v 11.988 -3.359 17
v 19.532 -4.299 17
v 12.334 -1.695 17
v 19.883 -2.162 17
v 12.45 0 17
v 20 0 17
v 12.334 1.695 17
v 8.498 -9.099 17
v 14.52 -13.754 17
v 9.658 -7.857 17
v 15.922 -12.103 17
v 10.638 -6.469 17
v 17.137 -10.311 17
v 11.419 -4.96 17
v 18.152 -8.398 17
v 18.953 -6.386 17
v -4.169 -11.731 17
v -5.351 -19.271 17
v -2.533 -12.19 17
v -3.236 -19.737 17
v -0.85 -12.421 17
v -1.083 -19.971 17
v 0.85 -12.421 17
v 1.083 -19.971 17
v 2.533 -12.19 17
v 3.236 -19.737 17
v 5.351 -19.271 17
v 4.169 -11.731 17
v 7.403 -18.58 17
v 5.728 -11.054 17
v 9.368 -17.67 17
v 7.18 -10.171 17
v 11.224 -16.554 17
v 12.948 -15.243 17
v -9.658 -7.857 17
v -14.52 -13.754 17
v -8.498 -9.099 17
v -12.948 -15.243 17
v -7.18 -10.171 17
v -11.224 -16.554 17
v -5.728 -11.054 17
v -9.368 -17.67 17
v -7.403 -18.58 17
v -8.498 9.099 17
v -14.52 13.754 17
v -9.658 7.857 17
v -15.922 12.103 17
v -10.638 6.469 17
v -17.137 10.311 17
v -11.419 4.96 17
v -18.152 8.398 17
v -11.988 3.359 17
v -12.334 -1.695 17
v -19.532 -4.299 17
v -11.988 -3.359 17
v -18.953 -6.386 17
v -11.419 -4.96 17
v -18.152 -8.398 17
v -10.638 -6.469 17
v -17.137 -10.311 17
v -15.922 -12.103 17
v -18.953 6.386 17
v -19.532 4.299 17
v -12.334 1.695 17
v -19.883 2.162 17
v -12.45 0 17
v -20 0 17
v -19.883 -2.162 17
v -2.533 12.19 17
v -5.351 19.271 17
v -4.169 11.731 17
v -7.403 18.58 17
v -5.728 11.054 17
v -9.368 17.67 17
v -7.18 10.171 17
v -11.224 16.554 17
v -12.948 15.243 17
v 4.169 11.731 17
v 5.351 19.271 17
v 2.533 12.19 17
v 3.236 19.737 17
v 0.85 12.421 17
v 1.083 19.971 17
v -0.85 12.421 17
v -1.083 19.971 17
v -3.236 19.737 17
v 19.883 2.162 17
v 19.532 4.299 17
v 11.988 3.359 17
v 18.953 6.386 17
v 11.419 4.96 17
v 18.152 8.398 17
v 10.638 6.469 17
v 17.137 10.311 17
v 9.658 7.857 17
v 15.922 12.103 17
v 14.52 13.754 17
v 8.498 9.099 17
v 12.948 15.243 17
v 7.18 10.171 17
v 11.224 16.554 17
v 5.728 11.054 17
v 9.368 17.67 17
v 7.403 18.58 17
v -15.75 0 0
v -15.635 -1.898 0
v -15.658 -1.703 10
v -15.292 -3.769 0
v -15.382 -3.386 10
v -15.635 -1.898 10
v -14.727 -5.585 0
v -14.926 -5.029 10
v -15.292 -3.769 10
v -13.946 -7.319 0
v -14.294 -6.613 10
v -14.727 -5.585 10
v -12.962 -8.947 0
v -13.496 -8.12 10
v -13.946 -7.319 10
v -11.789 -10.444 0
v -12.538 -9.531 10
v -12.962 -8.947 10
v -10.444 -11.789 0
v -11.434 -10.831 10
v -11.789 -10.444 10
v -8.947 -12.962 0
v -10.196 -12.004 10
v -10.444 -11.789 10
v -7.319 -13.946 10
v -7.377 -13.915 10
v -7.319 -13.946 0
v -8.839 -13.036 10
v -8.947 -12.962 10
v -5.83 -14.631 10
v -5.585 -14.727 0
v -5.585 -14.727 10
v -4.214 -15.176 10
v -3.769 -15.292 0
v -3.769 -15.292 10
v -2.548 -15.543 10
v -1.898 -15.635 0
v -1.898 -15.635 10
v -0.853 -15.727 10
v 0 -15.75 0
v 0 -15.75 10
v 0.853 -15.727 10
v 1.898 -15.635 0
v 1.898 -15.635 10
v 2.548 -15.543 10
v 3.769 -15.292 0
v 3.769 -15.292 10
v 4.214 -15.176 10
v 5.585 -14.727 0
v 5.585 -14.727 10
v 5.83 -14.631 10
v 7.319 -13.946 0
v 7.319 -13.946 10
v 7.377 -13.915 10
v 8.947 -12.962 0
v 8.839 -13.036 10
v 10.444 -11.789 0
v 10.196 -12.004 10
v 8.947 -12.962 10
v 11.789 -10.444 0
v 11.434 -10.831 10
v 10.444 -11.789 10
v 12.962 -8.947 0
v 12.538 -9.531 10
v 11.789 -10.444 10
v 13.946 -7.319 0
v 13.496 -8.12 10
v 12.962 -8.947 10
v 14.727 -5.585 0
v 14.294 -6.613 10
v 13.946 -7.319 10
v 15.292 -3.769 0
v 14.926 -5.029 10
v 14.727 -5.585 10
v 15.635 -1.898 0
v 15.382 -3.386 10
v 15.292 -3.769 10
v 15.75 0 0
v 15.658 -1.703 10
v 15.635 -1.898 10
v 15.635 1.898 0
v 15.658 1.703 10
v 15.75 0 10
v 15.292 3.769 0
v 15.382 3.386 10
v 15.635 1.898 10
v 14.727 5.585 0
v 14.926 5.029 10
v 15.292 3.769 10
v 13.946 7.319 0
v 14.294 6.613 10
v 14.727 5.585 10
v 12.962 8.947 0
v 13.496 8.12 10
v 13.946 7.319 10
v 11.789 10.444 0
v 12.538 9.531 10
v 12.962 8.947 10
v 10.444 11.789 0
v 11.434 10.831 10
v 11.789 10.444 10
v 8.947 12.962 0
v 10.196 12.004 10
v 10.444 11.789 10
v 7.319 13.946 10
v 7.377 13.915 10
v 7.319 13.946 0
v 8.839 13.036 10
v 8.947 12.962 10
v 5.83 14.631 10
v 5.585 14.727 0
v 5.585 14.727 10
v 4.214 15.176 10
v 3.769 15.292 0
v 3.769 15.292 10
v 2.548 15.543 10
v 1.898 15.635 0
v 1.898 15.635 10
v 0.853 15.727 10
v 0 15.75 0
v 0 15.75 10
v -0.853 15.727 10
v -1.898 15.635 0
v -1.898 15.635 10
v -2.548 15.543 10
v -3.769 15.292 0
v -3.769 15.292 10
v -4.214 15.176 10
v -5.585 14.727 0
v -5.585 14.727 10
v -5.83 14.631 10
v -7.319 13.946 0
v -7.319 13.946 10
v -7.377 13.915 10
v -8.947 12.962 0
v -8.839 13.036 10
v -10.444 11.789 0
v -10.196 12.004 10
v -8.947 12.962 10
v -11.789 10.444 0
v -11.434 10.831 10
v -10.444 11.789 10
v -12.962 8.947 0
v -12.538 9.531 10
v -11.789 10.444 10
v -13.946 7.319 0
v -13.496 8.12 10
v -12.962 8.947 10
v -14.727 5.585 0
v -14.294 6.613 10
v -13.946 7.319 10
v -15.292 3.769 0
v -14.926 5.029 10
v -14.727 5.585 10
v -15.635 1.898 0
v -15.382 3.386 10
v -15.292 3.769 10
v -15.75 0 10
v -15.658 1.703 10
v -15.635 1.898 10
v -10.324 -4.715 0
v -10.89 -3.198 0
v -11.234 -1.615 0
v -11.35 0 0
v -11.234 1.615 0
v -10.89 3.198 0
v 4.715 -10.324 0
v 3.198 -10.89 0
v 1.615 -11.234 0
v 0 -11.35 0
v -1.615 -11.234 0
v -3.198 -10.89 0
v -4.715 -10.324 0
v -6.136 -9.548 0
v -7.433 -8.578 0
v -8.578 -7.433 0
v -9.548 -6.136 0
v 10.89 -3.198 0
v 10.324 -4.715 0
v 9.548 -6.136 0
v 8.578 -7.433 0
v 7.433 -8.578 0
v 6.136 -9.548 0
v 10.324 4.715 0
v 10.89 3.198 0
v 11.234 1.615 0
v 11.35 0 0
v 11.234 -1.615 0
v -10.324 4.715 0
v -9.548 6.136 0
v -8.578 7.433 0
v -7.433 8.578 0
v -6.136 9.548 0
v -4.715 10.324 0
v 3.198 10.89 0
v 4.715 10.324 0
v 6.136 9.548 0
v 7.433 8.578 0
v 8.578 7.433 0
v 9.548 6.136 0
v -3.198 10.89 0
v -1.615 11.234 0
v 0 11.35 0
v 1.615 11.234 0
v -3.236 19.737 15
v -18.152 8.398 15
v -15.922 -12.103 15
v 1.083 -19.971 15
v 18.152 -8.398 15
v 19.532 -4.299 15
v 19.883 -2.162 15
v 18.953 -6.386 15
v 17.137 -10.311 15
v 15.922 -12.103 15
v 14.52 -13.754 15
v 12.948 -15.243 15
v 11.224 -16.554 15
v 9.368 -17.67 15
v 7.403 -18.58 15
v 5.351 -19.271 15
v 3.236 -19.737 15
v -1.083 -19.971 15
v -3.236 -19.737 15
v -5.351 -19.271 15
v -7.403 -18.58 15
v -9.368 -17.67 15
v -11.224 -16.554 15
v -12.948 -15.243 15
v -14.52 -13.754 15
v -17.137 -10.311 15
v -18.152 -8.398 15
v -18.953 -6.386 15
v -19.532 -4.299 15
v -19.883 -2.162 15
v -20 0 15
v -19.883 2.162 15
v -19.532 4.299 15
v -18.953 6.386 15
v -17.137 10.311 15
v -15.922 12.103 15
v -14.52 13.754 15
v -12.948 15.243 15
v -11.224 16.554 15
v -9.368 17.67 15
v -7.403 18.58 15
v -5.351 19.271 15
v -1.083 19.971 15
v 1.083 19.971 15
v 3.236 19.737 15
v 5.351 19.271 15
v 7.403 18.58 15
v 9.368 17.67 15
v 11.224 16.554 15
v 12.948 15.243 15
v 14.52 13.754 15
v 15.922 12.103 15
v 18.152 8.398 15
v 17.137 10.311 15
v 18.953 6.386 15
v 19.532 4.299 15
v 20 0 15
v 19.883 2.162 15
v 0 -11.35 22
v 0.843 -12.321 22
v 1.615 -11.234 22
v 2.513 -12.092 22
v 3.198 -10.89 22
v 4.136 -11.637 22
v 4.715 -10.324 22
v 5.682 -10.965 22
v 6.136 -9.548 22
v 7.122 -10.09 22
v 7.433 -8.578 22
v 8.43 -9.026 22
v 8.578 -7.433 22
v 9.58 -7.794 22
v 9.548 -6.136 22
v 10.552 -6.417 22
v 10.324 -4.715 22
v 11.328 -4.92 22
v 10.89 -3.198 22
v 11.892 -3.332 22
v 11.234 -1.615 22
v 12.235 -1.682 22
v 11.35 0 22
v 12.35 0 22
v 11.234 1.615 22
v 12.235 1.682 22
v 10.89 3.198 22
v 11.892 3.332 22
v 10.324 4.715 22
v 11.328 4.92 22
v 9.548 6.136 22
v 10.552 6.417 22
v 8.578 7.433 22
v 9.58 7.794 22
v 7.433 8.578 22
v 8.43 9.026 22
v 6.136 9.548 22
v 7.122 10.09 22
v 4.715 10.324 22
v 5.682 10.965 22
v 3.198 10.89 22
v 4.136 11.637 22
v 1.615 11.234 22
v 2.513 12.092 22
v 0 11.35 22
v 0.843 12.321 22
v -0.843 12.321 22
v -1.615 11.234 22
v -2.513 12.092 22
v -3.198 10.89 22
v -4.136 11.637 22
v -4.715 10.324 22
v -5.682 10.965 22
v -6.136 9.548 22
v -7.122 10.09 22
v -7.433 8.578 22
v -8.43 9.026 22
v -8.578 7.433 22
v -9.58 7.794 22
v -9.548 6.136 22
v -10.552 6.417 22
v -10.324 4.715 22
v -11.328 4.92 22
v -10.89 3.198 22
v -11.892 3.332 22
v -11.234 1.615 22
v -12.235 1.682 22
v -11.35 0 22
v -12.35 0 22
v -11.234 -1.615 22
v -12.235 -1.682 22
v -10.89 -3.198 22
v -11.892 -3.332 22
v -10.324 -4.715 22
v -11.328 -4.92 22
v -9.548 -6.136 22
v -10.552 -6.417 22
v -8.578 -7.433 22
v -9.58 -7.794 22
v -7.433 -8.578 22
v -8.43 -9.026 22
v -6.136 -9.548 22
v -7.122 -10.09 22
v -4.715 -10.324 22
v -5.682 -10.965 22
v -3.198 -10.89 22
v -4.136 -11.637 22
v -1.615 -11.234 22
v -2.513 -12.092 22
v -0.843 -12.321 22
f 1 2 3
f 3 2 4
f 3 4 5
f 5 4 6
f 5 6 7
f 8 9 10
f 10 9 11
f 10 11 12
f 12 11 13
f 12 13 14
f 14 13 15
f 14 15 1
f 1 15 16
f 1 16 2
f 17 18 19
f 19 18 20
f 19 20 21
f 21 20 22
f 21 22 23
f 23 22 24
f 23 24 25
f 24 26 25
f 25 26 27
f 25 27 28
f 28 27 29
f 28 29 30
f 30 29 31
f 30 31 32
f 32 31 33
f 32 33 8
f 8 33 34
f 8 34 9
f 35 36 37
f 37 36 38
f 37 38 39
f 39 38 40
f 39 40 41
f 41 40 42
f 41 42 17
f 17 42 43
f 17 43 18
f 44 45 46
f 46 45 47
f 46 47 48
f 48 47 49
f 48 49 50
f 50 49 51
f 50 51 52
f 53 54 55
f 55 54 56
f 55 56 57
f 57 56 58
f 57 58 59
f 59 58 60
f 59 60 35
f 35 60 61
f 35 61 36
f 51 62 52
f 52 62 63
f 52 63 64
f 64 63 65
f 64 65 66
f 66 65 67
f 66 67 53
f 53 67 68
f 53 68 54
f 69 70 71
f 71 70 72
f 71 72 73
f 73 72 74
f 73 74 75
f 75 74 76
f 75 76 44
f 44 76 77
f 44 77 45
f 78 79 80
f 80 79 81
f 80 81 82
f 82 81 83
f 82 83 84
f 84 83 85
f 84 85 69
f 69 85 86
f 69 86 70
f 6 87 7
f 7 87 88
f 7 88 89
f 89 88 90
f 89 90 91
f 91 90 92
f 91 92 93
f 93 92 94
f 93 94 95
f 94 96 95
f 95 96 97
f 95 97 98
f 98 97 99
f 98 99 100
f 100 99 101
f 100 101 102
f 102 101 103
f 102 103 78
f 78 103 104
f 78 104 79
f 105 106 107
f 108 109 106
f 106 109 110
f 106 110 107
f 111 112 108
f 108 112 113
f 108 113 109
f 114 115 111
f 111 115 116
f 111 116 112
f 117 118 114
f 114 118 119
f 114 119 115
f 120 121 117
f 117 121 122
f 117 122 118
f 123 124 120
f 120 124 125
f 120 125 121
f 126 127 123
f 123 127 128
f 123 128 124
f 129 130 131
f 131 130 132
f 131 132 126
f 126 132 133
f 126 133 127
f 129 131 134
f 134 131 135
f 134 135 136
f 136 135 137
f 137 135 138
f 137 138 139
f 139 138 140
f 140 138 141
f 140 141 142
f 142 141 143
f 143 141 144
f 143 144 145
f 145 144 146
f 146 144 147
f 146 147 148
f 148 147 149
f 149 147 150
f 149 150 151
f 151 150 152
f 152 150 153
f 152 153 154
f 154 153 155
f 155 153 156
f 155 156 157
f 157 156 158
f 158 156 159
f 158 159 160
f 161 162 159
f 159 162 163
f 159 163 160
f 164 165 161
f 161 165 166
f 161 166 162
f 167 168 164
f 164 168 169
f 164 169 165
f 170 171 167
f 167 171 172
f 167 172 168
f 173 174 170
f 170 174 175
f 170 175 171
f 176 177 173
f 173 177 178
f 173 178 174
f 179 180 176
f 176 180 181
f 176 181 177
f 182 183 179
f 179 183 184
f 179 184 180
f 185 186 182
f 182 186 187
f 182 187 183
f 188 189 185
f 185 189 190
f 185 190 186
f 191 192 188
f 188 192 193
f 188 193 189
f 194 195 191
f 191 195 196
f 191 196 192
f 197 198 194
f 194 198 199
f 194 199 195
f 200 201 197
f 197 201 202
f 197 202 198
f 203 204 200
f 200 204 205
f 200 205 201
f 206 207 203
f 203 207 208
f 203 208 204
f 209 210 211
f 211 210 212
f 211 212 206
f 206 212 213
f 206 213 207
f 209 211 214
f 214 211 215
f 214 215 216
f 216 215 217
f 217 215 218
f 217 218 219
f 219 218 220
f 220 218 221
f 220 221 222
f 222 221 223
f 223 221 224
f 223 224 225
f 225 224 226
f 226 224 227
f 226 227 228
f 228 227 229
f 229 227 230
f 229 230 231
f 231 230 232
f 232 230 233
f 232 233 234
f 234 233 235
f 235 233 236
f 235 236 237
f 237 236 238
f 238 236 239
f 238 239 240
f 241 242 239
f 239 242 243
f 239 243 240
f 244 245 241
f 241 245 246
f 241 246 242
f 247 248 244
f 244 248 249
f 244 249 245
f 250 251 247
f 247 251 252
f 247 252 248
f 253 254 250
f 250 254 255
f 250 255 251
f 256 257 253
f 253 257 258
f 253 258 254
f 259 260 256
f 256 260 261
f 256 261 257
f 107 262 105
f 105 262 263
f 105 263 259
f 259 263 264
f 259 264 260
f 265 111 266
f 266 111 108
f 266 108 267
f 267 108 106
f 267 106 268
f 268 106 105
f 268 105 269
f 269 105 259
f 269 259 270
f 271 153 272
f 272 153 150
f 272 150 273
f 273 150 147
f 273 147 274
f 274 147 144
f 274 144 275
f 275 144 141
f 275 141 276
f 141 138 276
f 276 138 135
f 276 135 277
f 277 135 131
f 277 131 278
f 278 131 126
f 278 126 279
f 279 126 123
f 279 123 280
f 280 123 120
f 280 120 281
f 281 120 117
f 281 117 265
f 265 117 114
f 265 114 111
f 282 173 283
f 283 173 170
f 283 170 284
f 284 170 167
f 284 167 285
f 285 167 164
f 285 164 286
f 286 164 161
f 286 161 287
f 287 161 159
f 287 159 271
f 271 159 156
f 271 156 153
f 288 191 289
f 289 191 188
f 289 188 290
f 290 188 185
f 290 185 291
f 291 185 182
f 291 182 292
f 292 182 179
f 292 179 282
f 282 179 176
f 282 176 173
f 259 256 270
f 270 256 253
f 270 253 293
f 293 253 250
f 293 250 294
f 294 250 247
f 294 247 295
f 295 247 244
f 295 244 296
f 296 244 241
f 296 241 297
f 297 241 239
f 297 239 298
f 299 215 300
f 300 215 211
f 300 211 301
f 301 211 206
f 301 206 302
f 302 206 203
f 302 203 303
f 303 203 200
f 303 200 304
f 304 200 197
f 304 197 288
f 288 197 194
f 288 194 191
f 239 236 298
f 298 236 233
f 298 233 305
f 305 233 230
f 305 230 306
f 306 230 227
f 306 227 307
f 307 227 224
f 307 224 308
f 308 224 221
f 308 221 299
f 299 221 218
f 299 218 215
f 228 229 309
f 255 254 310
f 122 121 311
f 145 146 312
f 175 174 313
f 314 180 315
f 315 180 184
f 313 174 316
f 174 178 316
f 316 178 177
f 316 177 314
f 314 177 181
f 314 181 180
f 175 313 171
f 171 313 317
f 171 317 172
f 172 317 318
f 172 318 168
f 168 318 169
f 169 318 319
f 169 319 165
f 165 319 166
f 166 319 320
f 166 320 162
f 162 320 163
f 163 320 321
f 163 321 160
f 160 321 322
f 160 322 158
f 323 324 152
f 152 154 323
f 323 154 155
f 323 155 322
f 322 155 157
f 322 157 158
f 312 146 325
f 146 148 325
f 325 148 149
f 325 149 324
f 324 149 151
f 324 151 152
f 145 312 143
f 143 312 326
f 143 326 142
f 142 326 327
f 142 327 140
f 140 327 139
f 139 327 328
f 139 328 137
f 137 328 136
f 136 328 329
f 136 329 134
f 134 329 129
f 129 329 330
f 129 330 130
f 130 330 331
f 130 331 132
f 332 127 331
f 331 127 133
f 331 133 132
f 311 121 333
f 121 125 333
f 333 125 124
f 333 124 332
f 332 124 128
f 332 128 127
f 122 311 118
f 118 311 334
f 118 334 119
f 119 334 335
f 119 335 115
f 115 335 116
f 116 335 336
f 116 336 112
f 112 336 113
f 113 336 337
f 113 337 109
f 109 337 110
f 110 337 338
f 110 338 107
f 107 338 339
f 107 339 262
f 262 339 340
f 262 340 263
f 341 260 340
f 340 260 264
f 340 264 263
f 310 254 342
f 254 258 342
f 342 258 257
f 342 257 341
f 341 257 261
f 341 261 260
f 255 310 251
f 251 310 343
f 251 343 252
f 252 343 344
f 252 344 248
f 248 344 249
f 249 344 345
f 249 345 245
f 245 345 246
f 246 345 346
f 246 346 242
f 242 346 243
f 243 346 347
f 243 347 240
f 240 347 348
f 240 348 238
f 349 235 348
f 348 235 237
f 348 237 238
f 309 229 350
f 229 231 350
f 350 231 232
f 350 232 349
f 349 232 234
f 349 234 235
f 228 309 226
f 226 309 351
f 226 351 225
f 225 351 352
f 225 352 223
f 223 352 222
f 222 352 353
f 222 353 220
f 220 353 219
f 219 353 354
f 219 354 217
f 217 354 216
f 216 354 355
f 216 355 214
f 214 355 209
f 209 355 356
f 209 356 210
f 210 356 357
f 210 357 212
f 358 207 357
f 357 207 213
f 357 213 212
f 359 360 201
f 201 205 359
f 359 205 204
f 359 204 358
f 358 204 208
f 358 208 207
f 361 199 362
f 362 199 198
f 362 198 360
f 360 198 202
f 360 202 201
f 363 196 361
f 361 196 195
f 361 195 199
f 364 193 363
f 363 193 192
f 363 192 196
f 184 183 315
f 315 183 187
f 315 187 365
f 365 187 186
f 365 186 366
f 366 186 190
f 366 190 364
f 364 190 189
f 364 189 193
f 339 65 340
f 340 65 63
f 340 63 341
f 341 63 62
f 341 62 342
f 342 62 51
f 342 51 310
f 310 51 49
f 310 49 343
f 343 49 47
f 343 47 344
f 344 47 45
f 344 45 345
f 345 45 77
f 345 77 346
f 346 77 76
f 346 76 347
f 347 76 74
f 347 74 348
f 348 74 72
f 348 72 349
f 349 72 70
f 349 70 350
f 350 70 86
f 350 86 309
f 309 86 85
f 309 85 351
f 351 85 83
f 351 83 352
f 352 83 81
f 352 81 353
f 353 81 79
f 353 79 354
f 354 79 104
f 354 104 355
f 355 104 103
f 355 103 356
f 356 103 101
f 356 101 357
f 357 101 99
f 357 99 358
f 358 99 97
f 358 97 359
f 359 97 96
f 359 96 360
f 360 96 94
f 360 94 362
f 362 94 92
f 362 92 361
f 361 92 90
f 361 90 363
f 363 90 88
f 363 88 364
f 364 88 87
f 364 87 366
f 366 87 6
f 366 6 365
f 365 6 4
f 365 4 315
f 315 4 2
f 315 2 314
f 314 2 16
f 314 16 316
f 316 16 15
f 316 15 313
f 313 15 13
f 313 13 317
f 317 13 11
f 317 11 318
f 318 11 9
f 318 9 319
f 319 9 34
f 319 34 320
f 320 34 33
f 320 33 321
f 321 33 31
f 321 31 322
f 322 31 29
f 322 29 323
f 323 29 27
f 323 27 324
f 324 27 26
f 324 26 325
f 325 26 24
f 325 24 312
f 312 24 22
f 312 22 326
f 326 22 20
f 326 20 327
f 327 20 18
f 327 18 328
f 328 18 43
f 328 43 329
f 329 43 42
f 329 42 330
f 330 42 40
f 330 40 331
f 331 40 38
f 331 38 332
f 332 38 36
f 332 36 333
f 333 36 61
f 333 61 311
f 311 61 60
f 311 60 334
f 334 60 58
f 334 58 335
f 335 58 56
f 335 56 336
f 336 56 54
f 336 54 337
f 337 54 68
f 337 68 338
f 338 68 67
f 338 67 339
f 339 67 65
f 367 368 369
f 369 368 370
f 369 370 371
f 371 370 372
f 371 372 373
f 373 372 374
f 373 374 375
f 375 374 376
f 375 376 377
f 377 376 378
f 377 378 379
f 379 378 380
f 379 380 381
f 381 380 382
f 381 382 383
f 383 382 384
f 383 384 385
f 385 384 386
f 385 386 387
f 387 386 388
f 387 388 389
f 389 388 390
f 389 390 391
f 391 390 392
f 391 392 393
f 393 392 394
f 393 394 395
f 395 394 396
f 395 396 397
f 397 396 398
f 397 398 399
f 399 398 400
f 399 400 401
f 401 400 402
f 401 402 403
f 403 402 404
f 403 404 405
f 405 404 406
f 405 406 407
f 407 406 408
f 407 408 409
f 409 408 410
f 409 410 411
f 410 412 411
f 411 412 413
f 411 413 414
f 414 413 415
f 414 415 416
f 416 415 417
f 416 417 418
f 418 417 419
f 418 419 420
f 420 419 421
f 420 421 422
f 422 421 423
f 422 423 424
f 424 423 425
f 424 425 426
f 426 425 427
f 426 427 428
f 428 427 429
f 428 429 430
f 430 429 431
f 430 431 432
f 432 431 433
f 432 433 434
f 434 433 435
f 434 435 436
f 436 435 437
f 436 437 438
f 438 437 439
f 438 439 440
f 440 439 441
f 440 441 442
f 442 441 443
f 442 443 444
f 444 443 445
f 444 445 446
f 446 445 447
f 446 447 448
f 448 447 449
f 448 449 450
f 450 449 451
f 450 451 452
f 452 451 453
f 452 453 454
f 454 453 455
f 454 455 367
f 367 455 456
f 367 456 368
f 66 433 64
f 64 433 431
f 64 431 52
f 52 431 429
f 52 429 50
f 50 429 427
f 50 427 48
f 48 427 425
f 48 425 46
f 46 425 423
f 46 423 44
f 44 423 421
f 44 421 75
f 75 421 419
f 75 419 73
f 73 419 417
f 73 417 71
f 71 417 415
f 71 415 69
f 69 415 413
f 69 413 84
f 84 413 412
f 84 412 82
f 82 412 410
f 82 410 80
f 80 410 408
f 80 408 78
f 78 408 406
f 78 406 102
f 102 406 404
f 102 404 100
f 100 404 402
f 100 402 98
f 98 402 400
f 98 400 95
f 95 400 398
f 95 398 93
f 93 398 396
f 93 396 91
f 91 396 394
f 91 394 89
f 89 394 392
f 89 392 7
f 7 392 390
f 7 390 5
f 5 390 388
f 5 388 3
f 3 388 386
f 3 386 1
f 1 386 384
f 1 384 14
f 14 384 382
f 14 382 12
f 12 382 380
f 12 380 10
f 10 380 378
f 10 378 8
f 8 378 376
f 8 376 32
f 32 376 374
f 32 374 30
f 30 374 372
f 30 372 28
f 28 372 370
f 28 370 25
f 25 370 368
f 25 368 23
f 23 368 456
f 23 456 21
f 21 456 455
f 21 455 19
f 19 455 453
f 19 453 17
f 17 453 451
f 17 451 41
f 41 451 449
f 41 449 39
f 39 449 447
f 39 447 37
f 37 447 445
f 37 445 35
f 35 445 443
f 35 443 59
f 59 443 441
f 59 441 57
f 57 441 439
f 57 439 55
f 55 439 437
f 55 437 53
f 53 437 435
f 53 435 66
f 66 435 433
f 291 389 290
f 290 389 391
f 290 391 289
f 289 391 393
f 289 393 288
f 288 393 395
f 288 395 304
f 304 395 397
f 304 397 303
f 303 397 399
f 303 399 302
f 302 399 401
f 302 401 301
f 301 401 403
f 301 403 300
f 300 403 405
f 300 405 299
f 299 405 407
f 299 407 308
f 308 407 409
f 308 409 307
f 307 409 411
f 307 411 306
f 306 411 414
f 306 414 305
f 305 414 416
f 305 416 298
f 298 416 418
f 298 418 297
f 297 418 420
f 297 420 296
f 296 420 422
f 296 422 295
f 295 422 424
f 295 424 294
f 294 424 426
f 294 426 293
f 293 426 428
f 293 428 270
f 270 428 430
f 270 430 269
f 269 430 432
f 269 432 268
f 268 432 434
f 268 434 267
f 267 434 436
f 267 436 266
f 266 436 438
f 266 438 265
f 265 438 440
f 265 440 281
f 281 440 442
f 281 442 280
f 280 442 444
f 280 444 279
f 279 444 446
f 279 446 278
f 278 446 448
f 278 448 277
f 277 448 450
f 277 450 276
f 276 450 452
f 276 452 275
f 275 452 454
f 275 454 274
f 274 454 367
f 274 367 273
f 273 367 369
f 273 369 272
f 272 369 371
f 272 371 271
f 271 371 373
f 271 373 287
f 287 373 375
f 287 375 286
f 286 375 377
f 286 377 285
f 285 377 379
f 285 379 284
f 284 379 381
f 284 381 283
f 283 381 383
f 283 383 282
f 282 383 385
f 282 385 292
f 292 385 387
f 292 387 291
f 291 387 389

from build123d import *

# Parameters (mm, degrees)
SKETCH_10_R         = 15.75
EXTRUDE_5_DEPTH     = 10
SKETCH_12_R         = 20
SKETCH_14_R         = 20
EXTRUDE_6_DEPTH     = 2
SKETCH_16_R         = 12.35
SKETCH_15_R         = 12.45
SKETCH_17_R         = 11.35
CUT_EXTRUDE_3_DEPTH = 30


with BuildPart() as part:
    # 草图10 → 凸台-拉伸5 (new body)
    with BuildSketch(Plane.XY):
        Circle(SKETCH_10_R)
    extrude(amount=EXTRUDE_5_DEPTH)

    # 草图12 → section 0 of loft_5
    with BuildSketch(Plane.XY.offset(15), mode=Mode.PRIVATE) as loft_5_s0:
        Circle(SKETCH_12_R)
    # loft up to a face of the part (loft_5)
    loft([loft_5_s0.sketch, Face(Wire([part.edges().sort_by_distance((-10.781616918, 11.481255882, 10))[0]]))])

    # 草图14 → 凸台-拉伸6 (add)
    with BuildSketch(Plane.XY.offset(15)):
        Circle(SKETCH_14_R)
    extrude(amount=EXTRUDE_6_DEPTH)

    # 草图16 → 放样6 section 0
    with BuildSketch(Plane.XY.offset(22)):
        Circle(SKETCH_16_R)
    # 草图15 → 放样6 section 1
    with BuildSketch(Plane.XY.offset(17)):
        Circle(SKETCH_15_R)
    loft()

    # 草图17 → 切除-拉伸3 (cut)
    with BuildSketch(Plane.XY.offset(22)):
        Circle(SKETCH_17_R)
    extrude(amount=-CUT_EXTRUDE_3_DEPTH, mode=Mode.SUBTRACT)


solid = part.part
